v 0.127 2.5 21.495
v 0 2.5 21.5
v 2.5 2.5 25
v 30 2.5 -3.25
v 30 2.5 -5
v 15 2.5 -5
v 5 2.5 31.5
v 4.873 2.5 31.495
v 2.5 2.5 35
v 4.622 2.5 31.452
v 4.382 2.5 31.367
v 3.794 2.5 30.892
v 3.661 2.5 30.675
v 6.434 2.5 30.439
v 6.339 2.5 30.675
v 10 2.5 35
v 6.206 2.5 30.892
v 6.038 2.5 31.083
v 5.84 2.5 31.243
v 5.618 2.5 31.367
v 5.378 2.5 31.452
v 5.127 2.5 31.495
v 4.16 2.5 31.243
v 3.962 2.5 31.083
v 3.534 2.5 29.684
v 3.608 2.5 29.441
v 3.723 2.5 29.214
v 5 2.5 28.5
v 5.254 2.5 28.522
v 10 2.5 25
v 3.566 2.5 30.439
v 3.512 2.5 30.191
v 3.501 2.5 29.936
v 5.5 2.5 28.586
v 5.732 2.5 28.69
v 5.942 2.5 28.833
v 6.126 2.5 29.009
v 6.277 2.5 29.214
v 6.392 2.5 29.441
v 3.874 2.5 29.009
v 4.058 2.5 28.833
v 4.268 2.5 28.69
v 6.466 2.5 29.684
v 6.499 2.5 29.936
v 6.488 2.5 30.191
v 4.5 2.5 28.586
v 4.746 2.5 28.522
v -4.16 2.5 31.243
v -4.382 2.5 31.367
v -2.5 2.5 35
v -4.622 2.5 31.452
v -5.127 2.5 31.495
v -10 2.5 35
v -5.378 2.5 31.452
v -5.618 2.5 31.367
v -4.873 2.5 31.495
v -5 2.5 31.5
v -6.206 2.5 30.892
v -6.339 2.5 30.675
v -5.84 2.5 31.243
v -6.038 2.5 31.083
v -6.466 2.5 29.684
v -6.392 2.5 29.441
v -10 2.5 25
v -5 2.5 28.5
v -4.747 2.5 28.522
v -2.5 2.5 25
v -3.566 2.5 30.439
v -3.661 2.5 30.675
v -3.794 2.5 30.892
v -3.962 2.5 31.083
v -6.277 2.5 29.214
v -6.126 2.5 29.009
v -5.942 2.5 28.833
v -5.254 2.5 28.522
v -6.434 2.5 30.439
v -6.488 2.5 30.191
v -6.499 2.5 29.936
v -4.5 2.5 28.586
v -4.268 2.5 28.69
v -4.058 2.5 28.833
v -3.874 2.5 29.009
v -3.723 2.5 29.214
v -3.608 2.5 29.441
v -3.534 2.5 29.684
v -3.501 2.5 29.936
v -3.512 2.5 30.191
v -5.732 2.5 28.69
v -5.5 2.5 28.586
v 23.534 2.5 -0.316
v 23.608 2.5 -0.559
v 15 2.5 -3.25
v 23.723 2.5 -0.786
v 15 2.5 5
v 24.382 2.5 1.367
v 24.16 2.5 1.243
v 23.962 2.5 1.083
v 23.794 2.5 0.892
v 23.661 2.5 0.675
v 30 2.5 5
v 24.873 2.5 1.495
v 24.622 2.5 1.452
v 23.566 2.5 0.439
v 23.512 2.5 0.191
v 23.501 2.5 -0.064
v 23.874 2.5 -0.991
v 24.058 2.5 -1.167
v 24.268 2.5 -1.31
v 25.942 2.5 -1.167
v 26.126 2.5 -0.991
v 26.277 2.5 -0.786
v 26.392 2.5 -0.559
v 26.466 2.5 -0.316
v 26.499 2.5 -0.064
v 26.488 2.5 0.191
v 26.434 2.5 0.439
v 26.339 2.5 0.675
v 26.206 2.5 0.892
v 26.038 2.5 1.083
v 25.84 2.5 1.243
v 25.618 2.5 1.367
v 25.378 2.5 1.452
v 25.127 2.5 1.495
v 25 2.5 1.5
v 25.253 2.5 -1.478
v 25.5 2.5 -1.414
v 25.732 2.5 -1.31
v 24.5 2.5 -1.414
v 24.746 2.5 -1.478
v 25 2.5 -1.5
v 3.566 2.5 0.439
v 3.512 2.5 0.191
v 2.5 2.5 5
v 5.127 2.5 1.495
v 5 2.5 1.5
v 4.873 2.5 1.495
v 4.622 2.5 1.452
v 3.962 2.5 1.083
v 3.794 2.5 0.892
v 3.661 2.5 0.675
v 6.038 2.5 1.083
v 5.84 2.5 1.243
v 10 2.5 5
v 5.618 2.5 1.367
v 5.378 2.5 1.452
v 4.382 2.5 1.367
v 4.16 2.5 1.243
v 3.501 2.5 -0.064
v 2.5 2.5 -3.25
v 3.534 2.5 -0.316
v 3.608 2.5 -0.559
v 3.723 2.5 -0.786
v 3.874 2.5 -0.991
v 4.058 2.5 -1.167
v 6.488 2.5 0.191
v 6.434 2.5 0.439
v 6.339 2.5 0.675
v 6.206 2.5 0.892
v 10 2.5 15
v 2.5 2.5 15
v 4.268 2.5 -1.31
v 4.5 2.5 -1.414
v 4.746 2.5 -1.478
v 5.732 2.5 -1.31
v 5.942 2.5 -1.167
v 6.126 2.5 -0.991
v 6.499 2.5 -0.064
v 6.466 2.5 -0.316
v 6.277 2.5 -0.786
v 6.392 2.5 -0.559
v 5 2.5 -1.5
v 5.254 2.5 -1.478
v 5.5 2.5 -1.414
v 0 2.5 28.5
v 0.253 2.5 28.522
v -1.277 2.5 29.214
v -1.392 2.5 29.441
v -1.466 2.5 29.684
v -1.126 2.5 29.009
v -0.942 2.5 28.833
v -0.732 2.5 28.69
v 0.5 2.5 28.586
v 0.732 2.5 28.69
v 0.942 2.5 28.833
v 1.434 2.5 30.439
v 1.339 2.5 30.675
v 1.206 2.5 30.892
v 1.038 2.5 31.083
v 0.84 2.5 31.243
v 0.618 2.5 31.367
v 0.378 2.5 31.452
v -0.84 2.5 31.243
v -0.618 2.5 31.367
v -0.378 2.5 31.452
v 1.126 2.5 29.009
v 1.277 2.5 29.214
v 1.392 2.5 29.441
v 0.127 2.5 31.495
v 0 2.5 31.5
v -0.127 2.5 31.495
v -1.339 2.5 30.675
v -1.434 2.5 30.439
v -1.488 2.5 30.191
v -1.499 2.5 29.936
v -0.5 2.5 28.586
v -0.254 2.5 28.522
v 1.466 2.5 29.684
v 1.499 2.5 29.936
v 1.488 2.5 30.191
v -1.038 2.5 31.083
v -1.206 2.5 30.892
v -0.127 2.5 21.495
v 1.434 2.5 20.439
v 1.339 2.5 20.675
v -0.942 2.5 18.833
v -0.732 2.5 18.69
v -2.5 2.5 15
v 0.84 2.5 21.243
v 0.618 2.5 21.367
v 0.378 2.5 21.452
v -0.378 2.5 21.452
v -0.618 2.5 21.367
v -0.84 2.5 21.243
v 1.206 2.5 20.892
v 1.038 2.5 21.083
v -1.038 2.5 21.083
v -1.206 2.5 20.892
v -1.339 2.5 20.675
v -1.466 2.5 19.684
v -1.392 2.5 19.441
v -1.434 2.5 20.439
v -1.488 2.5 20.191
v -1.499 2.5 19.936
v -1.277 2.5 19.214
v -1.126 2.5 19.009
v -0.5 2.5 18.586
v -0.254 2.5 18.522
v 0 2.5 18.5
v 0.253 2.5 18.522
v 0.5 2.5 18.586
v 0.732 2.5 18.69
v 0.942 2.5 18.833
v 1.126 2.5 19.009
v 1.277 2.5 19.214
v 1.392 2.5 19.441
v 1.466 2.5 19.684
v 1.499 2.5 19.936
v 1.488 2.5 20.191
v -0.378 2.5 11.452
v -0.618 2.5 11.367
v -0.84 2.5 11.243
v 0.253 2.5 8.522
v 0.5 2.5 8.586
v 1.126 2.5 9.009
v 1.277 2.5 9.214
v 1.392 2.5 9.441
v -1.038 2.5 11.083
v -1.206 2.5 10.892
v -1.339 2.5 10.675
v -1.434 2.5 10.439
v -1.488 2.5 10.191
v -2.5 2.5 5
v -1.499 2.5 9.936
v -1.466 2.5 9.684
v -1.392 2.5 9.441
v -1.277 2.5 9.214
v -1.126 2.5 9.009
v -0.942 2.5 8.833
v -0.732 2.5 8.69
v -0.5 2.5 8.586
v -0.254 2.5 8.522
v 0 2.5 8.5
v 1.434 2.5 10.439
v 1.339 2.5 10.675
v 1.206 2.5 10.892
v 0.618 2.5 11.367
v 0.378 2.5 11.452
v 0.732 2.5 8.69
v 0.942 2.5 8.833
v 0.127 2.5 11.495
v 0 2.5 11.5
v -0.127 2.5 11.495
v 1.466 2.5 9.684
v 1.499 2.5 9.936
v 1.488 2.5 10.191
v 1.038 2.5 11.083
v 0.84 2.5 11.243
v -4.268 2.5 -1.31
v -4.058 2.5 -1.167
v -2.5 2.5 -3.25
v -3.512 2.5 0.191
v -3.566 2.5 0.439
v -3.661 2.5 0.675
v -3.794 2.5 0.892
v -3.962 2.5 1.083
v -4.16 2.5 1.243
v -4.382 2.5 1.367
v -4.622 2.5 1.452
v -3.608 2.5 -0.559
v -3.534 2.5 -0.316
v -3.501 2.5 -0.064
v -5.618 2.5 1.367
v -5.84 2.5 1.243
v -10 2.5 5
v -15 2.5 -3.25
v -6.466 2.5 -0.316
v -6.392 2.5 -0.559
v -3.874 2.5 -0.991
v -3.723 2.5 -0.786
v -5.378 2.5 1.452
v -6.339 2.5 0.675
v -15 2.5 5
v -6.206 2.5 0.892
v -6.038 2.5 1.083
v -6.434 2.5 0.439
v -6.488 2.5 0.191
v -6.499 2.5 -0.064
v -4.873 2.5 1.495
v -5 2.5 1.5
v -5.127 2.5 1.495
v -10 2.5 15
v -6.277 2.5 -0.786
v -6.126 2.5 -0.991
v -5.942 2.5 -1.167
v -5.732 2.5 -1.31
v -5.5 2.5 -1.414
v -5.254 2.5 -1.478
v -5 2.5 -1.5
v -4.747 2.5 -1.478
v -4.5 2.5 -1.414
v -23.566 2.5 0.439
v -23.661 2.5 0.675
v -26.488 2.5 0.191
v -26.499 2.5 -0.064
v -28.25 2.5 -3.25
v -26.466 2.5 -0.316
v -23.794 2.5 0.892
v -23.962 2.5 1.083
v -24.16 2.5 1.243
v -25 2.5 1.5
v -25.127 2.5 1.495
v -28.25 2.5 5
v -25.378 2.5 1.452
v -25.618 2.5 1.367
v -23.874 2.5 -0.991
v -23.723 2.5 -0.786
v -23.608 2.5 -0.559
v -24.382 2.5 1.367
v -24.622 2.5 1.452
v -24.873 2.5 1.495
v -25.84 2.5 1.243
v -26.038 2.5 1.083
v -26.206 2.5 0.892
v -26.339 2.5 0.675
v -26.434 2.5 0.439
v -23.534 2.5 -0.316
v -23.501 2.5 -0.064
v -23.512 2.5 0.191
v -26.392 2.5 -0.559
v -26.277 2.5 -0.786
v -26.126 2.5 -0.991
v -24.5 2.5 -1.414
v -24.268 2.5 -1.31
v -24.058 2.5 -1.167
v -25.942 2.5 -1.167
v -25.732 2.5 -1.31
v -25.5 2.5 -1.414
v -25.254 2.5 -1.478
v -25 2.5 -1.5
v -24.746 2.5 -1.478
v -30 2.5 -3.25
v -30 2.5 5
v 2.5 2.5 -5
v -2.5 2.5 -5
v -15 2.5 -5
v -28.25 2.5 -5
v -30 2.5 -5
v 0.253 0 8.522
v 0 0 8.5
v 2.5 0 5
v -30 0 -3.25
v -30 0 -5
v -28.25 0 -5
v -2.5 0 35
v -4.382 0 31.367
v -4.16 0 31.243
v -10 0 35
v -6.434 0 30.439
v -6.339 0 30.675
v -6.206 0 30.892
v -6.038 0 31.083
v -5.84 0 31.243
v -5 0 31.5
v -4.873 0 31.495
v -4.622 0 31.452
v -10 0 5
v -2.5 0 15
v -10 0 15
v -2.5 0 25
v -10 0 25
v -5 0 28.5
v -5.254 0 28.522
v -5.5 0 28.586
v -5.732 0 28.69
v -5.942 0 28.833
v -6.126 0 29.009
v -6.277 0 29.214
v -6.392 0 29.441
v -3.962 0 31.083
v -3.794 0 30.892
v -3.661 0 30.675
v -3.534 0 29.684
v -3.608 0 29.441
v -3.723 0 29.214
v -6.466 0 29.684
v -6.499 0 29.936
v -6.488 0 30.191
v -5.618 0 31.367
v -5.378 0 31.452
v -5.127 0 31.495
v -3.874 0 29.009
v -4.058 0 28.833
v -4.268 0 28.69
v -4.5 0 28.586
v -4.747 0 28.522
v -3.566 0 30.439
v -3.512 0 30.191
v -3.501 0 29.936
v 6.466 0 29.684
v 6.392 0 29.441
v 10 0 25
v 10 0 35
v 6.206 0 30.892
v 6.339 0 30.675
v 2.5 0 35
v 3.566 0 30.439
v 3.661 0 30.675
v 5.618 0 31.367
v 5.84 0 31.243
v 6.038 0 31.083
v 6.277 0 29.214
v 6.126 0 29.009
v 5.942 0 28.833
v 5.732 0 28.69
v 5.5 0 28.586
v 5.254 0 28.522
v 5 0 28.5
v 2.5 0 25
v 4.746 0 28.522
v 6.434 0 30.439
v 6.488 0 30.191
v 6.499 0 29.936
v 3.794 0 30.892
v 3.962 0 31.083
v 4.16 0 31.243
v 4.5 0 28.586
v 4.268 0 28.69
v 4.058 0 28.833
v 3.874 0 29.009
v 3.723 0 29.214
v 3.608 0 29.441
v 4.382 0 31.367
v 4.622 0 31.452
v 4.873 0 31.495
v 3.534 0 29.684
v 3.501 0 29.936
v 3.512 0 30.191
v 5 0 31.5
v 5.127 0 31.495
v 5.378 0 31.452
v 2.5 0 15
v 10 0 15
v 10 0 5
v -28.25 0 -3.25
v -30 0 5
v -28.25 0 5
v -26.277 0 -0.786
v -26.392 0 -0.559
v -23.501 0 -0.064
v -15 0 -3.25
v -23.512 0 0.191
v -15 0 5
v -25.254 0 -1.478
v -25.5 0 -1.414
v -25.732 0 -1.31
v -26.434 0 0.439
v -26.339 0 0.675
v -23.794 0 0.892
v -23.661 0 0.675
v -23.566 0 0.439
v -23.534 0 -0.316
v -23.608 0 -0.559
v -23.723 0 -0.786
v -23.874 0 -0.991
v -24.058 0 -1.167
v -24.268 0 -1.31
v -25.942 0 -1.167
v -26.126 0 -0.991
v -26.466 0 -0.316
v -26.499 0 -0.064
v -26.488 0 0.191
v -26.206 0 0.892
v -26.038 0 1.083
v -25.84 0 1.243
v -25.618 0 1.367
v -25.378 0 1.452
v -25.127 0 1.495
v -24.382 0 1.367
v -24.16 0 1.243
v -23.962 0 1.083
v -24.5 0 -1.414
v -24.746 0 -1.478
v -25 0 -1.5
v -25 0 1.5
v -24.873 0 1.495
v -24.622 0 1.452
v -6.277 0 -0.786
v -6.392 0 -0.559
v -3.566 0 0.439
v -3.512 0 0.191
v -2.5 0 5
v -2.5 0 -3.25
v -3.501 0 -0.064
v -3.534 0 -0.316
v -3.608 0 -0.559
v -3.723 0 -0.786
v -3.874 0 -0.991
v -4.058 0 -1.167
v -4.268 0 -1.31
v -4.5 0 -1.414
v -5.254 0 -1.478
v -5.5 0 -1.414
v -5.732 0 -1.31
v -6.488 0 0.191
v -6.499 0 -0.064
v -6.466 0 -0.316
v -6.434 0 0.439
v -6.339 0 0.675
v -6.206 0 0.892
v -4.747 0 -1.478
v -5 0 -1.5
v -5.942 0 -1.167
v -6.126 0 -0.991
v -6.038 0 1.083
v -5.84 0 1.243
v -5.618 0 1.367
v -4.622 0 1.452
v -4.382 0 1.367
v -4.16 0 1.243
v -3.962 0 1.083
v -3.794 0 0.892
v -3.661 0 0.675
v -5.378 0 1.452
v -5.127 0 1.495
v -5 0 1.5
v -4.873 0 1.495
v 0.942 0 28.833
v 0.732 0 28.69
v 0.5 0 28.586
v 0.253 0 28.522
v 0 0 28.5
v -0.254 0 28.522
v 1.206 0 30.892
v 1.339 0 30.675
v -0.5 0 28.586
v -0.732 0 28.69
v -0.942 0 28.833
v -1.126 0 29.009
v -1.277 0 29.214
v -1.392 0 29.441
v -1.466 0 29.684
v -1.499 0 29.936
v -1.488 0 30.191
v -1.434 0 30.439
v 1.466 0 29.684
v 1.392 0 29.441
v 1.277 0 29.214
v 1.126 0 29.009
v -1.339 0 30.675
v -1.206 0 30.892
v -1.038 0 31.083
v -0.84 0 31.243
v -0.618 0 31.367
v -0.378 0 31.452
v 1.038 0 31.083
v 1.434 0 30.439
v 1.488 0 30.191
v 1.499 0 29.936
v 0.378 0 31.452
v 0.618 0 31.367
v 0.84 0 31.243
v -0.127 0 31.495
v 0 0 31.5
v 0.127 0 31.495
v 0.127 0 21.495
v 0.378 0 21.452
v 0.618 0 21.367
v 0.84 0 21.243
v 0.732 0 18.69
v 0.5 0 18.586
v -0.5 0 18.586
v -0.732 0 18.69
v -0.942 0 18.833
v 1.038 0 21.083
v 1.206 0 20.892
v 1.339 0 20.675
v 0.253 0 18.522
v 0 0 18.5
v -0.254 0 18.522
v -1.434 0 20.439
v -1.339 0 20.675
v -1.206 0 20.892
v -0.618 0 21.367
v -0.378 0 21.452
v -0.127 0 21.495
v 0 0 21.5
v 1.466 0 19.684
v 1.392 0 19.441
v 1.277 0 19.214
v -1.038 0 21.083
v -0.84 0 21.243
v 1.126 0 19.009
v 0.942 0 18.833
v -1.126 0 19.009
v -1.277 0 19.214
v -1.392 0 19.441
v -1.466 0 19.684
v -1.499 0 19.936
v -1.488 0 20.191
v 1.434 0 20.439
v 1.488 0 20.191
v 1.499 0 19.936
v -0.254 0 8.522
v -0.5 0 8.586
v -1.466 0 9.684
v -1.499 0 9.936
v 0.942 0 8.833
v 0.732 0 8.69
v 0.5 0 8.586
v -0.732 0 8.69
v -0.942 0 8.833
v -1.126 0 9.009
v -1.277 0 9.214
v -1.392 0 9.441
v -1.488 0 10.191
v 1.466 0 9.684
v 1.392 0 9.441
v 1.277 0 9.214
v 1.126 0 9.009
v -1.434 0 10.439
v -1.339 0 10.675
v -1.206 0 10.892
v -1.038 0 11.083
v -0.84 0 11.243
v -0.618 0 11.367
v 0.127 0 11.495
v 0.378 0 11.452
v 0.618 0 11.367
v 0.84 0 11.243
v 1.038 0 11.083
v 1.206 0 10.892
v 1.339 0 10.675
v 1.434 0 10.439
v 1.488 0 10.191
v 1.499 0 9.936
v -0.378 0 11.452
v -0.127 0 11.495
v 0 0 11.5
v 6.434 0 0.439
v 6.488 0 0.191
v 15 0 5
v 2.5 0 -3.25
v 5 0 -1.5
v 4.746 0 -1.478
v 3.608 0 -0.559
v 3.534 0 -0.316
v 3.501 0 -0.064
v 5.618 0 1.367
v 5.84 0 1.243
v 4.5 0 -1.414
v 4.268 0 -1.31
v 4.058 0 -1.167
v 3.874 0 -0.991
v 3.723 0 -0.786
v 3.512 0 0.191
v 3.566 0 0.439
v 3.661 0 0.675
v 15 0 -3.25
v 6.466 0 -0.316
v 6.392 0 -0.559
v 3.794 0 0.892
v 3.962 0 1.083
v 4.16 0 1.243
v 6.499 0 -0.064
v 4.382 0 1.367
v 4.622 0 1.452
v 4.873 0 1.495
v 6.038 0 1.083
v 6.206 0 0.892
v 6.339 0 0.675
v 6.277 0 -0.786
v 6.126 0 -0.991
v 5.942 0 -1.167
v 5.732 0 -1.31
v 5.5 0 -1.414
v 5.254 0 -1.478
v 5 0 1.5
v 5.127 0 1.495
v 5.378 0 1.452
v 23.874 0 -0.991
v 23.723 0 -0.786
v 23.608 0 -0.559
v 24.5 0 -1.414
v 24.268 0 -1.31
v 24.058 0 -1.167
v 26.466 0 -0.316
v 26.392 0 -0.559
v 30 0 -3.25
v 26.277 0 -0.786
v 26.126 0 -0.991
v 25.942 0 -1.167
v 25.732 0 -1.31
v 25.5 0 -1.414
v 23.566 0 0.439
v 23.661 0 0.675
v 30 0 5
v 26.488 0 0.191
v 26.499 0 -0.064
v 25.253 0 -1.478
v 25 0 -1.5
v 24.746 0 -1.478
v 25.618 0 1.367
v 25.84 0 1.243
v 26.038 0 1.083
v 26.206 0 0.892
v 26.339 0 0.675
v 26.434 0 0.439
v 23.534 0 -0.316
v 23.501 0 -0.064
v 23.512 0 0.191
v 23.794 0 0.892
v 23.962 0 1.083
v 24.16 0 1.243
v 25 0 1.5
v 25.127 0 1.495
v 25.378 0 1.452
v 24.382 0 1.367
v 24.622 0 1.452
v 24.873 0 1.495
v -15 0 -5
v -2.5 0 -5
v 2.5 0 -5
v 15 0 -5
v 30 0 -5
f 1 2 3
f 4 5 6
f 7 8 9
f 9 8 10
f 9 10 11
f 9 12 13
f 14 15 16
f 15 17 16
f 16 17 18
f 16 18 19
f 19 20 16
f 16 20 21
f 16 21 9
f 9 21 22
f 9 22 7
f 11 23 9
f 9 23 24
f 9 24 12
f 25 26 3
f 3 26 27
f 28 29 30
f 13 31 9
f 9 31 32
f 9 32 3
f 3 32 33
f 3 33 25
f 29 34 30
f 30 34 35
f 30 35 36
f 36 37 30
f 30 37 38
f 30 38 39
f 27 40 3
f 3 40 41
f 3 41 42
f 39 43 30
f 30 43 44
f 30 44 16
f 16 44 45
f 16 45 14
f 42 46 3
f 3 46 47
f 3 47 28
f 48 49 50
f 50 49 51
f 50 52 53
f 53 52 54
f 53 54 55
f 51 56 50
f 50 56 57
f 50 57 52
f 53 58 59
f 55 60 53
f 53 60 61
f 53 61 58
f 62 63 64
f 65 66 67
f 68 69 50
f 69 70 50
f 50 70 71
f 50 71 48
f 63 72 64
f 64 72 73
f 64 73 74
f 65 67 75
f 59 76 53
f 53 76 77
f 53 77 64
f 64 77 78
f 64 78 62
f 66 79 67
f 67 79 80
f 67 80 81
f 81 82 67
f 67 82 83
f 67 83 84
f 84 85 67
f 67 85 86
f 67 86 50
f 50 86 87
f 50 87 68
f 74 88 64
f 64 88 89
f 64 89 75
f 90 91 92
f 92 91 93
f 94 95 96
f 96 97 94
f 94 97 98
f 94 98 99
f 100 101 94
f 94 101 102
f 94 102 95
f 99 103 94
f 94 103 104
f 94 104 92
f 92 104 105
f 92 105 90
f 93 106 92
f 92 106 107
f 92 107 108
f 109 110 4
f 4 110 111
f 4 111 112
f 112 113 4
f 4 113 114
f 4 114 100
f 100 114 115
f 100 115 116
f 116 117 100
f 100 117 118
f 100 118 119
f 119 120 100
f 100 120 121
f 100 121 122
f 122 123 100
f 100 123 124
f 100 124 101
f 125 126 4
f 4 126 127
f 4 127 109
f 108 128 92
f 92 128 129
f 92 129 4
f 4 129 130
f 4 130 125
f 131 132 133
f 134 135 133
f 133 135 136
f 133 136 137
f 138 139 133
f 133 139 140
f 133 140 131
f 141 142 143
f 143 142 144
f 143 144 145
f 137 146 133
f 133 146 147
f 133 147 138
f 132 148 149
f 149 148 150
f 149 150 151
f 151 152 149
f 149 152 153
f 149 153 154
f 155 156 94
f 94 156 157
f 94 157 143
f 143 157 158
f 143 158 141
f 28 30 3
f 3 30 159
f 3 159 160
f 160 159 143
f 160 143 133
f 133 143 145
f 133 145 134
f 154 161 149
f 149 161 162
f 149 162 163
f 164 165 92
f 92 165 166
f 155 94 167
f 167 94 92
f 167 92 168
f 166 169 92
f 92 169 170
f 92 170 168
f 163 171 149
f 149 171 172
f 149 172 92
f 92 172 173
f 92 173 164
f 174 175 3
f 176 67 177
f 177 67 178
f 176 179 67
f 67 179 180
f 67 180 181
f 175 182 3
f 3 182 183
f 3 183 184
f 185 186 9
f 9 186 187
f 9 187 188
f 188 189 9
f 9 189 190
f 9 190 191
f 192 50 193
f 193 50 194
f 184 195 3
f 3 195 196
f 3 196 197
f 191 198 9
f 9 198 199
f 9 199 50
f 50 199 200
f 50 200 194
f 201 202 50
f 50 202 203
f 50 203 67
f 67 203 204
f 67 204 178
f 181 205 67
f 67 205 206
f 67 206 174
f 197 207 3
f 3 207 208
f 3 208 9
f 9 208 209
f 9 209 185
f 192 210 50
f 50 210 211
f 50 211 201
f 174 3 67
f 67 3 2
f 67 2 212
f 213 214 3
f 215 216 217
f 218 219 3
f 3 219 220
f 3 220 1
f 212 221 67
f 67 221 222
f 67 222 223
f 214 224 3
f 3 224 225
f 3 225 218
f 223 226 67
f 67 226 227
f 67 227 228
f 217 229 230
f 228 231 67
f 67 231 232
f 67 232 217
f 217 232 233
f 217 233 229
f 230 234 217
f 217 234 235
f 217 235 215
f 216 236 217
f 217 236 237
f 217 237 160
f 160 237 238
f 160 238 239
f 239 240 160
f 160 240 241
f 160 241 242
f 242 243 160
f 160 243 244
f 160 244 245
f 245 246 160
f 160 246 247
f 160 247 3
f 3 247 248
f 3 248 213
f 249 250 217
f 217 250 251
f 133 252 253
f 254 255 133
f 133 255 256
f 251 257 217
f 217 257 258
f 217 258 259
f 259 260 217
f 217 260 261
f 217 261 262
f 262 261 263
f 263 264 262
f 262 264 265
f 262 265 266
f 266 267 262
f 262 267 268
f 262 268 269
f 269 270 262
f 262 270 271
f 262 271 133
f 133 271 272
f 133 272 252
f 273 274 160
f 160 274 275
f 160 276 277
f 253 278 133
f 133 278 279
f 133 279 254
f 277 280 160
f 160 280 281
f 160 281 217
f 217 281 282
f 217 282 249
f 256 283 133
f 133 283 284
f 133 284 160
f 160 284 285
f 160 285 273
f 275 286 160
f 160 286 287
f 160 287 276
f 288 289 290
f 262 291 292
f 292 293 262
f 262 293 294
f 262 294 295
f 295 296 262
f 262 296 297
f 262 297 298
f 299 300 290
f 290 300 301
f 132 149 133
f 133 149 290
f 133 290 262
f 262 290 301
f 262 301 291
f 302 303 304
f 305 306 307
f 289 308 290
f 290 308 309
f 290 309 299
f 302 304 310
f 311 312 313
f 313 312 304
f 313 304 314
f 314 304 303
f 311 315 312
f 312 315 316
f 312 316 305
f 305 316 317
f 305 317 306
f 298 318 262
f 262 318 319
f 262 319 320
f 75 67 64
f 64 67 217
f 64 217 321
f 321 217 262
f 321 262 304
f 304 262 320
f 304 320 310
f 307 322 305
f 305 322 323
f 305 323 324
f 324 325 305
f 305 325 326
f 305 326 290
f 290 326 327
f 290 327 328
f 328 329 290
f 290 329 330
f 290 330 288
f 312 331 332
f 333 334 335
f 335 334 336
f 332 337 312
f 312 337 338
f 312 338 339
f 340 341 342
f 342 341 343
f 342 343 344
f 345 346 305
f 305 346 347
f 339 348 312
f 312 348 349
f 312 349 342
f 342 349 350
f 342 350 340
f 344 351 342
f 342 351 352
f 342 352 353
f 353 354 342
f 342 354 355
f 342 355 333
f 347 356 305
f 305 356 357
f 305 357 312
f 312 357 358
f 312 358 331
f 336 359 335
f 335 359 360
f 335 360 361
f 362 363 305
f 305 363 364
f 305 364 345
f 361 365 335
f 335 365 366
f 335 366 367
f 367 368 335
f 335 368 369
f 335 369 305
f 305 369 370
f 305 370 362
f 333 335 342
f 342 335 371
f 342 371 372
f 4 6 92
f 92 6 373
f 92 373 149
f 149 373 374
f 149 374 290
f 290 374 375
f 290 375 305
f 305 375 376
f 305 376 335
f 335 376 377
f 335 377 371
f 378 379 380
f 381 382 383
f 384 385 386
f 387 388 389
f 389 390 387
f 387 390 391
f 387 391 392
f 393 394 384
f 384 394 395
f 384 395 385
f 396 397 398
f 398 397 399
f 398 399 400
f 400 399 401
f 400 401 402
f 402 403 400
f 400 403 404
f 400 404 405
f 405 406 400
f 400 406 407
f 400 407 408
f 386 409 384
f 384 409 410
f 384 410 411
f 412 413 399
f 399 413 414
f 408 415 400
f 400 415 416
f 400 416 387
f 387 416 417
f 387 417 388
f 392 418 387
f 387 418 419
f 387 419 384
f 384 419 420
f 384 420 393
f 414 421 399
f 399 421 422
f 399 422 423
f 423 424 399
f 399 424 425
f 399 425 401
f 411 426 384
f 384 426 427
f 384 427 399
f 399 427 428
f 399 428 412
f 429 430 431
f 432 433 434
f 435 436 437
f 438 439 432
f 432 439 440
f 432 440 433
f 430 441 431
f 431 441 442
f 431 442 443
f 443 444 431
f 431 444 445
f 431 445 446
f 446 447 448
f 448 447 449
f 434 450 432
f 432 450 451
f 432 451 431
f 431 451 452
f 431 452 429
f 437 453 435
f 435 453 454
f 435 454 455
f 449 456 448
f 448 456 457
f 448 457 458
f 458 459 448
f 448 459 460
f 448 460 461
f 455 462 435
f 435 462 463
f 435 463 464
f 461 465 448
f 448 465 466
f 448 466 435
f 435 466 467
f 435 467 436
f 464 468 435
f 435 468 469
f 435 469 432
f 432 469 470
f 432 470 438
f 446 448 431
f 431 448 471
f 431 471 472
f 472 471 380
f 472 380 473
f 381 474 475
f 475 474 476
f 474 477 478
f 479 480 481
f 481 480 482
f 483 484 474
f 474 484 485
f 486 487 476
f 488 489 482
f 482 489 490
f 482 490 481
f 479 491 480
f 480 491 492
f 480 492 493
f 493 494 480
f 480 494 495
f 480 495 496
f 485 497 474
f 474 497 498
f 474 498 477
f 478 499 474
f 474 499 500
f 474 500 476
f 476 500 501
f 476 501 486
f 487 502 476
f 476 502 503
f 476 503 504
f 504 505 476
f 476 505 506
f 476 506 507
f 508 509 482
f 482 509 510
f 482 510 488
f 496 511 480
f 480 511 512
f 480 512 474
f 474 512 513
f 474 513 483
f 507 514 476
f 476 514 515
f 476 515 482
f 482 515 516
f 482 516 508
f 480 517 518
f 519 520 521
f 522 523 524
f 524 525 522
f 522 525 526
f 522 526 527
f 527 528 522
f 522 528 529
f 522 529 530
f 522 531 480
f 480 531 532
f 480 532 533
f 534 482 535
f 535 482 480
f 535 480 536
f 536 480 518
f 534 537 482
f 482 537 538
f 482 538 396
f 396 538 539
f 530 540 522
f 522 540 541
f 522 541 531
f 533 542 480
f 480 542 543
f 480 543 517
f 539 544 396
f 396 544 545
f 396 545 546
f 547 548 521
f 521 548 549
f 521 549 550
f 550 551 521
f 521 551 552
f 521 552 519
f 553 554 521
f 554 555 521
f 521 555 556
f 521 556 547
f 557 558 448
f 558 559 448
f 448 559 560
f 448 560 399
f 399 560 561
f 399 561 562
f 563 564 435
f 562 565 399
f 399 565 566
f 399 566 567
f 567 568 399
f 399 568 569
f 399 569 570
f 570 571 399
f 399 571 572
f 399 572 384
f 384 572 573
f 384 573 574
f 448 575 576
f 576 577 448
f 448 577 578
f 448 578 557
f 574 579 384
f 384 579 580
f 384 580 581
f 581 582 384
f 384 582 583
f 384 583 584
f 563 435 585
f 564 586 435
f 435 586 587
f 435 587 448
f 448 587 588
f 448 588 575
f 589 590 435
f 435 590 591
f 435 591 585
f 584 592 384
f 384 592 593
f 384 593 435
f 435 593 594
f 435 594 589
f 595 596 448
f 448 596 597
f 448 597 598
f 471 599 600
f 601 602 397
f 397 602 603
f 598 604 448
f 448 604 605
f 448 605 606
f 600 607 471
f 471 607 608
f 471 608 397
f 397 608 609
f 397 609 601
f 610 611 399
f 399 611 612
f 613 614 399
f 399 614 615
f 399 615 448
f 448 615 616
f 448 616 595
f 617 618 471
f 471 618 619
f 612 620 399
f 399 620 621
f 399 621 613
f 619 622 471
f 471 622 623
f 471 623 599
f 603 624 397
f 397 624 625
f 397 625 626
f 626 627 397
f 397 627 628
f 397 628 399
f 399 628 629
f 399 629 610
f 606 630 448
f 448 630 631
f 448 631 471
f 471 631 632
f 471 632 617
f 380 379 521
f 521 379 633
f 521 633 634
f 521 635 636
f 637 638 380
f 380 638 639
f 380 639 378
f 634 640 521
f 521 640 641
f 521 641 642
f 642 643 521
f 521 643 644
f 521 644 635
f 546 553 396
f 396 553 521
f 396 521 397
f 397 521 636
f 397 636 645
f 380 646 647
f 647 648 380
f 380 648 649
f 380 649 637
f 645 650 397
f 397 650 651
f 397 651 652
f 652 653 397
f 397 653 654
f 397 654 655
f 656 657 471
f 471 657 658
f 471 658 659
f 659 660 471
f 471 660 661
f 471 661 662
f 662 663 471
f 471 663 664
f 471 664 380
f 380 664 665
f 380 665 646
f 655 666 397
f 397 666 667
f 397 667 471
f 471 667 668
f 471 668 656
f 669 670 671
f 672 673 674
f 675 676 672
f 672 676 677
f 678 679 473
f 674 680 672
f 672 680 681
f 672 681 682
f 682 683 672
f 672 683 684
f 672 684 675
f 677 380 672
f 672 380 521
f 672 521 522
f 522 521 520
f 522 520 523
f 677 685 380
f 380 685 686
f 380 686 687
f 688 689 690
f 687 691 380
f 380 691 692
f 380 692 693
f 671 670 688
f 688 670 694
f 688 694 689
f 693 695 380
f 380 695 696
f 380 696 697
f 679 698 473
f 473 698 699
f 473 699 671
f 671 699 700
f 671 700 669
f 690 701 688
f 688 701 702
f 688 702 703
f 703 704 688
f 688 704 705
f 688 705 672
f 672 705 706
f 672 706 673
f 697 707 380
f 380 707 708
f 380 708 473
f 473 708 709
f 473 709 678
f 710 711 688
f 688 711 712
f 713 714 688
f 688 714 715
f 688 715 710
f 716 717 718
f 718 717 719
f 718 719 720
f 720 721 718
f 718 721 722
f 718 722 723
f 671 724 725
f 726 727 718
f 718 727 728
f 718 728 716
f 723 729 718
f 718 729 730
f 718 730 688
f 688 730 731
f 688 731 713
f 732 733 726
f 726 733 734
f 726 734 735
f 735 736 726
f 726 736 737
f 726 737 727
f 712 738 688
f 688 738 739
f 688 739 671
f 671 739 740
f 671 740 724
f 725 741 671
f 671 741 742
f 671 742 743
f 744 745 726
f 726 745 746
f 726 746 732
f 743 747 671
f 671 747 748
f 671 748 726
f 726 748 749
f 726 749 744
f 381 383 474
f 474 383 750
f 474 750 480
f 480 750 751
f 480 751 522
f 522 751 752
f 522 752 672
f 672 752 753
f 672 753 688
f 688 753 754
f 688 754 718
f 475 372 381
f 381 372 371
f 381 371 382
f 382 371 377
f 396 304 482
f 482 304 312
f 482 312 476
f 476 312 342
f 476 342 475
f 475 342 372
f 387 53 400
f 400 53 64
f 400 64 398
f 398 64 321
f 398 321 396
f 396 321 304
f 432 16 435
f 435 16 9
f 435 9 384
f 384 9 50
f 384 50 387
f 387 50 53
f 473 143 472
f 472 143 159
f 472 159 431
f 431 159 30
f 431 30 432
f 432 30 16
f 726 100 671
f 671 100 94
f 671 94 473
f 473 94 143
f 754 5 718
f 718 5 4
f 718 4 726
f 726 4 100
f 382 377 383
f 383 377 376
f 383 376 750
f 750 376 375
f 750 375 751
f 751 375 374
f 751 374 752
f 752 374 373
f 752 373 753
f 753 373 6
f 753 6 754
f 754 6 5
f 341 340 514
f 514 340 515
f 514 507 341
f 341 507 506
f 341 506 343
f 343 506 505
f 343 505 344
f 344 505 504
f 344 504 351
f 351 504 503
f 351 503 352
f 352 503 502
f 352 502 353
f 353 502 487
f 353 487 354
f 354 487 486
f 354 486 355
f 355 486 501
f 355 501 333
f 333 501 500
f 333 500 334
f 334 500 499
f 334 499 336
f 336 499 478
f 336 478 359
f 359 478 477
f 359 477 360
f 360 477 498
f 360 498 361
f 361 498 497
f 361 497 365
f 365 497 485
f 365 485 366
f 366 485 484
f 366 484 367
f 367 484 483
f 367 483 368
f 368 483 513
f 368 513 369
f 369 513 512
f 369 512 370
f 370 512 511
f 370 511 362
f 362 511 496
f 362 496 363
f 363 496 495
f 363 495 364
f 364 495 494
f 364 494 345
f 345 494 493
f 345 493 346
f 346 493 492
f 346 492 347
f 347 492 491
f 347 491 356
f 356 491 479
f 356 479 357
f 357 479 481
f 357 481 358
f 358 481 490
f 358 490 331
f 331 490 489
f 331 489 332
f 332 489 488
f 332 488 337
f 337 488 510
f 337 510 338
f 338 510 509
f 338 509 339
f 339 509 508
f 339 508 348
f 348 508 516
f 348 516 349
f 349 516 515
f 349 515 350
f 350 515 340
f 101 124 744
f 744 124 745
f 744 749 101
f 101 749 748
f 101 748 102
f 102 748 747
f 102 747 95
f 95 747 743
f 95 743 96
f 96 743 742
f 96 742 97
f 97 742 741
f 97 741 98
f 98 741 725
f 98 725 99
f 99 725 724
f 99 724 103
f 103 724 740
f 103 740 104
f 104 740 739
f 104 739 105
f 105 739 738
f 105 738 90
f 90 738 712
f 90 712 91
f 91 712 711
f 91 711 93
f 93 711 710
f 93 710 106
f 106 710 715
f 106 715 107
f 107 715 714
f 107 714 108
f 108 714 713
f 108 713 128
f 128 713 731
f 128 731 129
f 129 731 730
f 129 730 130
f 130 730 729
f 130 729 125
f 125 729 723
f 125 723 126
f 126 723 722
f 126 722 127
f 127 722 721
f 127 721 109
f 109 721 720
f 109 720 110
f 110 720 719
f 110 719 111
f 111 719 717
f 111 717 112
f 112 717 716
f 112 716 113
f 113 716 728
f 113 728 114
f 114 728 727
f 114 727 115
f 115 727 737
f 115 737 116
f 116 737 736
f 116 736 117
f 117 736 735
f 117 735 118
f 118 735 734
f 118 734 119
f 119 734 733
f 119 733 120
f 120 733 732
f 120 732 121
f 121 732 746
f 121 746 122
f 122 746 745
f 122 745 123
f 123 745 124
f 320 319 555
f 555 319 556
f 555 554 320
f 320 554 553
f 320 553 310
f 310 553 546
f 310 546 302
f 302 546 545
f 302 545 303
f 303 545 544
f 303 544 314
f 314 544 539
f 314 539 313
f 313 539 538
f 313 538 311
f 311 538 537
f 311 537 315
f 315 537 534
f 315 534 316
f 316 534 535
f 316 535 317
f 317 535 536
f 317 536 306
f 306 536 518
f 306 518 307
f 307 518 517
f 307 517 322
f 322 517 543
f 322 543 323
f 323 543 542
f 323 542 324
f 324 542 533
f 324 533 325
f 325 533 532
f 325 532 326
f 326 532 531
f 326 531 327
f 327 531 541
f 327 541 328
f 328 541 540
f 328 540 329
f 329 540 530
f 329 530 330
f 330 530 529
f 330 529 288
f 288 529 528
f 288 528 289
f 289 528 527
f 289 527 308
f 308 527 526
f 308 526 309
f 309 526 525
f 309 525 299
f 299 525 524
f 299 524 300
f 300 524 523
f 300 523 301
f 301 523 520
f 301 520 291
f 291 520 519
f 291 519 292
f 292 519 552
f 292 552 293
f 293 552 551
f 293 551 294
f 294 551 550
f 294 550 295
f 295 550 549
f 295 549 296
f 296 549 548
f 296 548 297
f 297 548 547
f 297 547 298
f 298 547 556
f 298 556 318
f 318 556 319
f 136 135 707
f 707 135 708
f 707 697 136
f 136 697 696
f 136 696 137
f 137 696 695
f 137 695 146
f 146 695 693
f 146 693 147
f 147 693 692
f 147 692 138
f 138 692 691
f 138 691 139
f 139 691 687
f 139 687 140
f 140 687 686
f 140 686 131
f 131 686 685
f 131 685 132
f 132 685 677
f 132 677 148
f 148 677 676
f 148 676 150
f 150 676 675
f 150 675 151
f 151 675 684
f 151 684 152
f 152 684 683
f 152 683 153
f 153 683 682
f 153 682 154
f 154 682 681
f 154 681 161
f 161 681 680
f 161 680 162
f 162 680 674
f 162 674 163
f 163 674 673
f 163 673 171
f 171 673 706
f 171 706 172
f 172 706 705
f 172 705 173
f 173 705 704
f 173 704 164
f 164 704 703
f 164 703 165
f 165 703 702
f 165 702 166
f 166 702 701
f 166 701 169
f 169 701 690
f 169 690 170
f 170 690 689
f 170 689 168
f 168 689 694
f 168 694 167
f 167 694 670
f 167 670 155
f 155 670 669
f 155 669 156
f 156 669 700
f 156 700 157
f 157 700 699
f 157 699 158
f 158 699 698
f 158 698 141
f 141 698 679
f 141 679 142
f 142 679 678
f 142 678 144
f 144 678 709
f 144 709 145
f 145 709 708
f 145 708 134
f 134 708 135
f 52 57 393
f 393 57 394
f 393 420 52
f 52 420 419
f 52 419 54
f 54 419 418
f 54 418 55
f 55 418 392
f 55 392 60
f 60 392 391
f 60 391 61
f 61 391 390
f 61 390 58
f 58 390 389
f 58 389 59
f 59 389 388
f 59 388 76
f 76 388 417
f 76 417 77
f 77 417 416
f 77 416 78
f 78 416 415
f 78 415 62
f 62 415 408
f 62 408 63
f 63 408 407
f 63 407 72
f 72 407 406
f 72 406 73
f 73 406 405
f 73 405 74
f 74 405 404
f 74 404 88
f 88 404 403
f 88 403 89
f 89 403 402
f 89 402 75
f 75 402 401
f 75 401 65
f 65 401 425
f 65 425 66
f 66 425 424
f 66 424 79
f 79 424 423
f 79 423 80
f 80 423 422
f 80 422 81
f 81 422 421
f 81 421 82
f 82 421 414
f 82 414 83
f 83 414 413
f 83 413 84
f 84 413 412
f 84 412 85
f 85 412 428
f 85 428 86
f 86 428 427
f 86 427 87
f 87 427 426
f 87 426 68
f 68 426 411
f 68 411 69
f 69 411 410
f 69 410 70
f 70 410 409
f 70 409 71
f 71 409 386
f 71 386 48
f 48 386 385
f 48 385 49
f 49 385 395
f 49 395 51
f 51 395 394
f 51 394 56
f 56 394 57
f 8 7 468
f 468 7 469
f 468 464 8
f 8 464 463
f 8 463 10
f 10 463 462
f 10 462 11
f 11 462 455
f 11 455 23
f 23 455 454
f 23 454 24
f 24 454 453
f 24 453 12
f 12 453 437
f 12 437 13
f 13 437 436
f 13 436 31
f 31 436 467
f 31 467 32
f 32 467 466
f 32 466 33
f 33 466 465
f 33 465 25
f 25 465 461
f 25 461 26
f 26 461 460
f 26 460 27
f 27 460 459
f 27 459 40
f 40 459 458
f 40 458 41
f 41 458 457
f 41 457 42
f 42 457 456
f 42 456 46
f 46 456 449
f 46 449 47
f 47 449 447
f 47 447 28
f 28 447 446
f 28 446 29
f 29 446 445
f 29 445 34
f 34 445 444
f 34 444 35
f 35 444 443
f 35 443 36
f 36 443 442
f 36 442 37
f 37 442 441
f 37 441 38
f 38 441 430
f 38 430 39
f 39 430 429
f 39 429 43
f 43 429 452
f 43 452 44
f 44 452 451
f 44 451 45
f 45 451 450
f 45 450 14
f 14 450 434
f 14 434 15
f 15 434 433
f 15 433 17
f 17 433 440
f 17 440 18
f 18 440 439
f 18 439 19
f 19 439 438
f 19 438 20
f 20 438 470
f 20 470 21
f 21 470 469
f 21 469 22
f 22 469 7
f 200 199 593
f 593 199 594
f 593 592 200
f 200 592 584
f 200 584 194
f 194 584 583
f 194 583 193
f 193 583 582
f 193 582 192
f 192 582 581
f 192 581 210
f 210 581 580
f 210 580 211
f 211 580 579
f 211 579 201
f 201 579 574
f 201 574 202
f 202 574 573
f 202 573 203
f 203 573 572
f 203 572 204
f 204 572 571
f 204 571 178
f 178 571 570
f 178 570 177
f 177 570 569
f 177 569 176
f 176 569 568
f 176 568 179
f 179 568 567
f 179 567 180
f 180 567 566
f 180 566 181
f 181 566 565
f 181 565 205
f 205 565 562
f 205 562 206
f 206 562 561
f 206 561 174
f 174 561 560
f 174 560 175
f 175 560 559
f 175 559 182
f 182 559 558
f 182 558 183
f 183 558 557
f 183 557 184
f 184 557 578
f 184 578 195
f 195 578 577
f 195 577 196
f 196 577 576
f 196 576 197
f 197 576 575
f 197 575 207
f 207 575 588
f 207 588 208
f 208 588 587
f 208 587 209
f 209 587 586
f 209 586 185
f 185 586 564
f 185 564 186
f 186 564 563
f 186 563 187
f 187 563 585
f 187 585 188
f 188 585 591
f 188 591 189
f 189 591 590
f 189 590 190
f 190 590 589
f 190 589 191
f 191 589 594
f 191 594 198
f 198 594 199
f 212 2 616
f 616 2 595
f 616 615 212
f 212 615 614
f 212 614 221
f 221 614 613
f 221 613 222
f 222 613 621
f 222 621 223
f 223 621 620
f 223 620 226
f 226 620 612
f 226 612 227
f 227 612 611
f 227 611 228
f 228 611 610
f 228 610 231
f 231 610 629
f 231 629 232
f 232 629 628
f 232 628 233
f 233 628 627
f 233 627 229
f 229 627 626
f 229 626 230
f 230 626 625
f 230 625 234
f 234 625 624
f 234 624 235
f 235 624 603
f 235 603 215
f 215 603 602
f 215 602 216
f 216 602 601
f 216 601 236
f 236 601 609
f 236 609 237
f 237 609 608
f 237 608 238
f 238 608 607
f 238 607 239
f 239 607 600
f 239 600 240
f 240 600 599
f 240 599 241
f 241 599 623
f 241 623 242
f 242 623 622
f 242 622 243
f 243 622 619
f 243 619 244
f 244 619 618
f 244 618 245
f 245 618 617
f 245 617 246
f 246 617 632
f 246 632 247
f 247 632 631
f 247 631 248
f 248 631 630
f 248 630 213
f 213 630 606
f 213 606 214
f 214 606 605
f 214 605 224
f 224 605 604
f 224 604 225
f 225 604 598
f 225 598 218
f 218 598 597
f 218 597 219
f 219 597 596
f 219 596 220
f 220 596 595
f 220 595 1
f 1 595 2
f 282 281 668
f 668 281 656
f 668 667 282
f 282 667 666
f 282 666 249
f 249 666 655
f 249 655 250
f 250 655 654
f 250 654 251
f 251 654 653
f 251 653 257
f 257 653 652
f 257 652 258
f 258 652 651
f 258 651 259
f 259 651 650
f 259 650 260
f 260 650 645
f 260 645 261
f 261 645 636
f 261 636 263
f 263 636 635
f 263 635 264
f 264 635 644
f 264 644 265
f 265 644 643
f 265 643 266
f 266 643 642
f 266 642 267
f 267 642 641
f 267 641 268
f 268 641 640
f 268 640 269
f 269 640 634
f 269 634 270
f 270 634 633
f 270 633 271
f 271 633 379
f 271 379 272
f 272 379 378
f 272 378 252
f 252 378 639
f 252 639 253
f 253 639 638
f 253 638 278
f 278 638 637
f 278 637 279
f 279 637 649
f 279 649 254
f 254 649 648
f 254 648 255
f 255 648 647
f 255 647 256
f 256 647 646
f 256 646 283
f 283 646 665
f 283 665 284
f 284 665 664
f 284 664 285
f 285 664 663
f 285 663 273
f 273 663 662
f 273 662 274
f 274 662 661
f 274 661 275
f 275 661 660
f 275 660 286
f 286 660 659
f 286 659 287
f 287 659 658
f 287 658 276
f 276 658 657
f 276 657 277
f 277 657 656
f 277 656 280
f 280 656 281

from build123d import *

# Parameters (mm, degrees)
ESQUISSE1_R        = 1.5
BOSS_EXTRU_1_DEPTH = 2.5


with BuildPart() as part:
    # Esquisse1 → Boss.-Extru.1 (new body)
    with BuildSketch(Plane(origin=(0, 0, 0), x_dir=(1, 0, 0), z_dir=(0, 1, 0))):
        Polygon((-30, -5), (-10, -5), (-10, -35), (10, -35), (10, -5), (30, -5), (30, 5), (-30, 5), align=None)
        with Locations((-25, 0)):
            Circle(ESQUISSE1_R, mode=Mode.SUBTRACT)
        with Locations((25, 0)):
            Circle(ESQUISSE1_R, mode=Mode.SUBTRACT)
        with Locations((-5, 0)):
            Circle(ESQUISSE1_R, mode=Mode.SUBTRACT)
        with Locations((5, 0)):
            Circle(ESQUISSE1_R, mode=Mode.SUBTRACT)
        with Locations((-5, -30)):
            Circle(ESQUISSE1_R, mode=Mode.SUBTRACT)
        with Locations((5, -30)):
            Circle(ESQUISSE1_R, mode=Mode.SUBTRACT)
        with Locations((0, -30)):
            Circle(ESQUISSE1_R, mode=Mode.SUBTRACT)
        with Locations((0, -20)):
            Circle(ESQUISSE1_R, mode=Mode.SUBTRACT)
        with Locations((0, -10)):
            Circle(ESQUISSE1_R, mode=Mode.SUBTRACT)
    extrude(amount=BOSS_EXTRU_1_DEPTH)


solid = part.part
